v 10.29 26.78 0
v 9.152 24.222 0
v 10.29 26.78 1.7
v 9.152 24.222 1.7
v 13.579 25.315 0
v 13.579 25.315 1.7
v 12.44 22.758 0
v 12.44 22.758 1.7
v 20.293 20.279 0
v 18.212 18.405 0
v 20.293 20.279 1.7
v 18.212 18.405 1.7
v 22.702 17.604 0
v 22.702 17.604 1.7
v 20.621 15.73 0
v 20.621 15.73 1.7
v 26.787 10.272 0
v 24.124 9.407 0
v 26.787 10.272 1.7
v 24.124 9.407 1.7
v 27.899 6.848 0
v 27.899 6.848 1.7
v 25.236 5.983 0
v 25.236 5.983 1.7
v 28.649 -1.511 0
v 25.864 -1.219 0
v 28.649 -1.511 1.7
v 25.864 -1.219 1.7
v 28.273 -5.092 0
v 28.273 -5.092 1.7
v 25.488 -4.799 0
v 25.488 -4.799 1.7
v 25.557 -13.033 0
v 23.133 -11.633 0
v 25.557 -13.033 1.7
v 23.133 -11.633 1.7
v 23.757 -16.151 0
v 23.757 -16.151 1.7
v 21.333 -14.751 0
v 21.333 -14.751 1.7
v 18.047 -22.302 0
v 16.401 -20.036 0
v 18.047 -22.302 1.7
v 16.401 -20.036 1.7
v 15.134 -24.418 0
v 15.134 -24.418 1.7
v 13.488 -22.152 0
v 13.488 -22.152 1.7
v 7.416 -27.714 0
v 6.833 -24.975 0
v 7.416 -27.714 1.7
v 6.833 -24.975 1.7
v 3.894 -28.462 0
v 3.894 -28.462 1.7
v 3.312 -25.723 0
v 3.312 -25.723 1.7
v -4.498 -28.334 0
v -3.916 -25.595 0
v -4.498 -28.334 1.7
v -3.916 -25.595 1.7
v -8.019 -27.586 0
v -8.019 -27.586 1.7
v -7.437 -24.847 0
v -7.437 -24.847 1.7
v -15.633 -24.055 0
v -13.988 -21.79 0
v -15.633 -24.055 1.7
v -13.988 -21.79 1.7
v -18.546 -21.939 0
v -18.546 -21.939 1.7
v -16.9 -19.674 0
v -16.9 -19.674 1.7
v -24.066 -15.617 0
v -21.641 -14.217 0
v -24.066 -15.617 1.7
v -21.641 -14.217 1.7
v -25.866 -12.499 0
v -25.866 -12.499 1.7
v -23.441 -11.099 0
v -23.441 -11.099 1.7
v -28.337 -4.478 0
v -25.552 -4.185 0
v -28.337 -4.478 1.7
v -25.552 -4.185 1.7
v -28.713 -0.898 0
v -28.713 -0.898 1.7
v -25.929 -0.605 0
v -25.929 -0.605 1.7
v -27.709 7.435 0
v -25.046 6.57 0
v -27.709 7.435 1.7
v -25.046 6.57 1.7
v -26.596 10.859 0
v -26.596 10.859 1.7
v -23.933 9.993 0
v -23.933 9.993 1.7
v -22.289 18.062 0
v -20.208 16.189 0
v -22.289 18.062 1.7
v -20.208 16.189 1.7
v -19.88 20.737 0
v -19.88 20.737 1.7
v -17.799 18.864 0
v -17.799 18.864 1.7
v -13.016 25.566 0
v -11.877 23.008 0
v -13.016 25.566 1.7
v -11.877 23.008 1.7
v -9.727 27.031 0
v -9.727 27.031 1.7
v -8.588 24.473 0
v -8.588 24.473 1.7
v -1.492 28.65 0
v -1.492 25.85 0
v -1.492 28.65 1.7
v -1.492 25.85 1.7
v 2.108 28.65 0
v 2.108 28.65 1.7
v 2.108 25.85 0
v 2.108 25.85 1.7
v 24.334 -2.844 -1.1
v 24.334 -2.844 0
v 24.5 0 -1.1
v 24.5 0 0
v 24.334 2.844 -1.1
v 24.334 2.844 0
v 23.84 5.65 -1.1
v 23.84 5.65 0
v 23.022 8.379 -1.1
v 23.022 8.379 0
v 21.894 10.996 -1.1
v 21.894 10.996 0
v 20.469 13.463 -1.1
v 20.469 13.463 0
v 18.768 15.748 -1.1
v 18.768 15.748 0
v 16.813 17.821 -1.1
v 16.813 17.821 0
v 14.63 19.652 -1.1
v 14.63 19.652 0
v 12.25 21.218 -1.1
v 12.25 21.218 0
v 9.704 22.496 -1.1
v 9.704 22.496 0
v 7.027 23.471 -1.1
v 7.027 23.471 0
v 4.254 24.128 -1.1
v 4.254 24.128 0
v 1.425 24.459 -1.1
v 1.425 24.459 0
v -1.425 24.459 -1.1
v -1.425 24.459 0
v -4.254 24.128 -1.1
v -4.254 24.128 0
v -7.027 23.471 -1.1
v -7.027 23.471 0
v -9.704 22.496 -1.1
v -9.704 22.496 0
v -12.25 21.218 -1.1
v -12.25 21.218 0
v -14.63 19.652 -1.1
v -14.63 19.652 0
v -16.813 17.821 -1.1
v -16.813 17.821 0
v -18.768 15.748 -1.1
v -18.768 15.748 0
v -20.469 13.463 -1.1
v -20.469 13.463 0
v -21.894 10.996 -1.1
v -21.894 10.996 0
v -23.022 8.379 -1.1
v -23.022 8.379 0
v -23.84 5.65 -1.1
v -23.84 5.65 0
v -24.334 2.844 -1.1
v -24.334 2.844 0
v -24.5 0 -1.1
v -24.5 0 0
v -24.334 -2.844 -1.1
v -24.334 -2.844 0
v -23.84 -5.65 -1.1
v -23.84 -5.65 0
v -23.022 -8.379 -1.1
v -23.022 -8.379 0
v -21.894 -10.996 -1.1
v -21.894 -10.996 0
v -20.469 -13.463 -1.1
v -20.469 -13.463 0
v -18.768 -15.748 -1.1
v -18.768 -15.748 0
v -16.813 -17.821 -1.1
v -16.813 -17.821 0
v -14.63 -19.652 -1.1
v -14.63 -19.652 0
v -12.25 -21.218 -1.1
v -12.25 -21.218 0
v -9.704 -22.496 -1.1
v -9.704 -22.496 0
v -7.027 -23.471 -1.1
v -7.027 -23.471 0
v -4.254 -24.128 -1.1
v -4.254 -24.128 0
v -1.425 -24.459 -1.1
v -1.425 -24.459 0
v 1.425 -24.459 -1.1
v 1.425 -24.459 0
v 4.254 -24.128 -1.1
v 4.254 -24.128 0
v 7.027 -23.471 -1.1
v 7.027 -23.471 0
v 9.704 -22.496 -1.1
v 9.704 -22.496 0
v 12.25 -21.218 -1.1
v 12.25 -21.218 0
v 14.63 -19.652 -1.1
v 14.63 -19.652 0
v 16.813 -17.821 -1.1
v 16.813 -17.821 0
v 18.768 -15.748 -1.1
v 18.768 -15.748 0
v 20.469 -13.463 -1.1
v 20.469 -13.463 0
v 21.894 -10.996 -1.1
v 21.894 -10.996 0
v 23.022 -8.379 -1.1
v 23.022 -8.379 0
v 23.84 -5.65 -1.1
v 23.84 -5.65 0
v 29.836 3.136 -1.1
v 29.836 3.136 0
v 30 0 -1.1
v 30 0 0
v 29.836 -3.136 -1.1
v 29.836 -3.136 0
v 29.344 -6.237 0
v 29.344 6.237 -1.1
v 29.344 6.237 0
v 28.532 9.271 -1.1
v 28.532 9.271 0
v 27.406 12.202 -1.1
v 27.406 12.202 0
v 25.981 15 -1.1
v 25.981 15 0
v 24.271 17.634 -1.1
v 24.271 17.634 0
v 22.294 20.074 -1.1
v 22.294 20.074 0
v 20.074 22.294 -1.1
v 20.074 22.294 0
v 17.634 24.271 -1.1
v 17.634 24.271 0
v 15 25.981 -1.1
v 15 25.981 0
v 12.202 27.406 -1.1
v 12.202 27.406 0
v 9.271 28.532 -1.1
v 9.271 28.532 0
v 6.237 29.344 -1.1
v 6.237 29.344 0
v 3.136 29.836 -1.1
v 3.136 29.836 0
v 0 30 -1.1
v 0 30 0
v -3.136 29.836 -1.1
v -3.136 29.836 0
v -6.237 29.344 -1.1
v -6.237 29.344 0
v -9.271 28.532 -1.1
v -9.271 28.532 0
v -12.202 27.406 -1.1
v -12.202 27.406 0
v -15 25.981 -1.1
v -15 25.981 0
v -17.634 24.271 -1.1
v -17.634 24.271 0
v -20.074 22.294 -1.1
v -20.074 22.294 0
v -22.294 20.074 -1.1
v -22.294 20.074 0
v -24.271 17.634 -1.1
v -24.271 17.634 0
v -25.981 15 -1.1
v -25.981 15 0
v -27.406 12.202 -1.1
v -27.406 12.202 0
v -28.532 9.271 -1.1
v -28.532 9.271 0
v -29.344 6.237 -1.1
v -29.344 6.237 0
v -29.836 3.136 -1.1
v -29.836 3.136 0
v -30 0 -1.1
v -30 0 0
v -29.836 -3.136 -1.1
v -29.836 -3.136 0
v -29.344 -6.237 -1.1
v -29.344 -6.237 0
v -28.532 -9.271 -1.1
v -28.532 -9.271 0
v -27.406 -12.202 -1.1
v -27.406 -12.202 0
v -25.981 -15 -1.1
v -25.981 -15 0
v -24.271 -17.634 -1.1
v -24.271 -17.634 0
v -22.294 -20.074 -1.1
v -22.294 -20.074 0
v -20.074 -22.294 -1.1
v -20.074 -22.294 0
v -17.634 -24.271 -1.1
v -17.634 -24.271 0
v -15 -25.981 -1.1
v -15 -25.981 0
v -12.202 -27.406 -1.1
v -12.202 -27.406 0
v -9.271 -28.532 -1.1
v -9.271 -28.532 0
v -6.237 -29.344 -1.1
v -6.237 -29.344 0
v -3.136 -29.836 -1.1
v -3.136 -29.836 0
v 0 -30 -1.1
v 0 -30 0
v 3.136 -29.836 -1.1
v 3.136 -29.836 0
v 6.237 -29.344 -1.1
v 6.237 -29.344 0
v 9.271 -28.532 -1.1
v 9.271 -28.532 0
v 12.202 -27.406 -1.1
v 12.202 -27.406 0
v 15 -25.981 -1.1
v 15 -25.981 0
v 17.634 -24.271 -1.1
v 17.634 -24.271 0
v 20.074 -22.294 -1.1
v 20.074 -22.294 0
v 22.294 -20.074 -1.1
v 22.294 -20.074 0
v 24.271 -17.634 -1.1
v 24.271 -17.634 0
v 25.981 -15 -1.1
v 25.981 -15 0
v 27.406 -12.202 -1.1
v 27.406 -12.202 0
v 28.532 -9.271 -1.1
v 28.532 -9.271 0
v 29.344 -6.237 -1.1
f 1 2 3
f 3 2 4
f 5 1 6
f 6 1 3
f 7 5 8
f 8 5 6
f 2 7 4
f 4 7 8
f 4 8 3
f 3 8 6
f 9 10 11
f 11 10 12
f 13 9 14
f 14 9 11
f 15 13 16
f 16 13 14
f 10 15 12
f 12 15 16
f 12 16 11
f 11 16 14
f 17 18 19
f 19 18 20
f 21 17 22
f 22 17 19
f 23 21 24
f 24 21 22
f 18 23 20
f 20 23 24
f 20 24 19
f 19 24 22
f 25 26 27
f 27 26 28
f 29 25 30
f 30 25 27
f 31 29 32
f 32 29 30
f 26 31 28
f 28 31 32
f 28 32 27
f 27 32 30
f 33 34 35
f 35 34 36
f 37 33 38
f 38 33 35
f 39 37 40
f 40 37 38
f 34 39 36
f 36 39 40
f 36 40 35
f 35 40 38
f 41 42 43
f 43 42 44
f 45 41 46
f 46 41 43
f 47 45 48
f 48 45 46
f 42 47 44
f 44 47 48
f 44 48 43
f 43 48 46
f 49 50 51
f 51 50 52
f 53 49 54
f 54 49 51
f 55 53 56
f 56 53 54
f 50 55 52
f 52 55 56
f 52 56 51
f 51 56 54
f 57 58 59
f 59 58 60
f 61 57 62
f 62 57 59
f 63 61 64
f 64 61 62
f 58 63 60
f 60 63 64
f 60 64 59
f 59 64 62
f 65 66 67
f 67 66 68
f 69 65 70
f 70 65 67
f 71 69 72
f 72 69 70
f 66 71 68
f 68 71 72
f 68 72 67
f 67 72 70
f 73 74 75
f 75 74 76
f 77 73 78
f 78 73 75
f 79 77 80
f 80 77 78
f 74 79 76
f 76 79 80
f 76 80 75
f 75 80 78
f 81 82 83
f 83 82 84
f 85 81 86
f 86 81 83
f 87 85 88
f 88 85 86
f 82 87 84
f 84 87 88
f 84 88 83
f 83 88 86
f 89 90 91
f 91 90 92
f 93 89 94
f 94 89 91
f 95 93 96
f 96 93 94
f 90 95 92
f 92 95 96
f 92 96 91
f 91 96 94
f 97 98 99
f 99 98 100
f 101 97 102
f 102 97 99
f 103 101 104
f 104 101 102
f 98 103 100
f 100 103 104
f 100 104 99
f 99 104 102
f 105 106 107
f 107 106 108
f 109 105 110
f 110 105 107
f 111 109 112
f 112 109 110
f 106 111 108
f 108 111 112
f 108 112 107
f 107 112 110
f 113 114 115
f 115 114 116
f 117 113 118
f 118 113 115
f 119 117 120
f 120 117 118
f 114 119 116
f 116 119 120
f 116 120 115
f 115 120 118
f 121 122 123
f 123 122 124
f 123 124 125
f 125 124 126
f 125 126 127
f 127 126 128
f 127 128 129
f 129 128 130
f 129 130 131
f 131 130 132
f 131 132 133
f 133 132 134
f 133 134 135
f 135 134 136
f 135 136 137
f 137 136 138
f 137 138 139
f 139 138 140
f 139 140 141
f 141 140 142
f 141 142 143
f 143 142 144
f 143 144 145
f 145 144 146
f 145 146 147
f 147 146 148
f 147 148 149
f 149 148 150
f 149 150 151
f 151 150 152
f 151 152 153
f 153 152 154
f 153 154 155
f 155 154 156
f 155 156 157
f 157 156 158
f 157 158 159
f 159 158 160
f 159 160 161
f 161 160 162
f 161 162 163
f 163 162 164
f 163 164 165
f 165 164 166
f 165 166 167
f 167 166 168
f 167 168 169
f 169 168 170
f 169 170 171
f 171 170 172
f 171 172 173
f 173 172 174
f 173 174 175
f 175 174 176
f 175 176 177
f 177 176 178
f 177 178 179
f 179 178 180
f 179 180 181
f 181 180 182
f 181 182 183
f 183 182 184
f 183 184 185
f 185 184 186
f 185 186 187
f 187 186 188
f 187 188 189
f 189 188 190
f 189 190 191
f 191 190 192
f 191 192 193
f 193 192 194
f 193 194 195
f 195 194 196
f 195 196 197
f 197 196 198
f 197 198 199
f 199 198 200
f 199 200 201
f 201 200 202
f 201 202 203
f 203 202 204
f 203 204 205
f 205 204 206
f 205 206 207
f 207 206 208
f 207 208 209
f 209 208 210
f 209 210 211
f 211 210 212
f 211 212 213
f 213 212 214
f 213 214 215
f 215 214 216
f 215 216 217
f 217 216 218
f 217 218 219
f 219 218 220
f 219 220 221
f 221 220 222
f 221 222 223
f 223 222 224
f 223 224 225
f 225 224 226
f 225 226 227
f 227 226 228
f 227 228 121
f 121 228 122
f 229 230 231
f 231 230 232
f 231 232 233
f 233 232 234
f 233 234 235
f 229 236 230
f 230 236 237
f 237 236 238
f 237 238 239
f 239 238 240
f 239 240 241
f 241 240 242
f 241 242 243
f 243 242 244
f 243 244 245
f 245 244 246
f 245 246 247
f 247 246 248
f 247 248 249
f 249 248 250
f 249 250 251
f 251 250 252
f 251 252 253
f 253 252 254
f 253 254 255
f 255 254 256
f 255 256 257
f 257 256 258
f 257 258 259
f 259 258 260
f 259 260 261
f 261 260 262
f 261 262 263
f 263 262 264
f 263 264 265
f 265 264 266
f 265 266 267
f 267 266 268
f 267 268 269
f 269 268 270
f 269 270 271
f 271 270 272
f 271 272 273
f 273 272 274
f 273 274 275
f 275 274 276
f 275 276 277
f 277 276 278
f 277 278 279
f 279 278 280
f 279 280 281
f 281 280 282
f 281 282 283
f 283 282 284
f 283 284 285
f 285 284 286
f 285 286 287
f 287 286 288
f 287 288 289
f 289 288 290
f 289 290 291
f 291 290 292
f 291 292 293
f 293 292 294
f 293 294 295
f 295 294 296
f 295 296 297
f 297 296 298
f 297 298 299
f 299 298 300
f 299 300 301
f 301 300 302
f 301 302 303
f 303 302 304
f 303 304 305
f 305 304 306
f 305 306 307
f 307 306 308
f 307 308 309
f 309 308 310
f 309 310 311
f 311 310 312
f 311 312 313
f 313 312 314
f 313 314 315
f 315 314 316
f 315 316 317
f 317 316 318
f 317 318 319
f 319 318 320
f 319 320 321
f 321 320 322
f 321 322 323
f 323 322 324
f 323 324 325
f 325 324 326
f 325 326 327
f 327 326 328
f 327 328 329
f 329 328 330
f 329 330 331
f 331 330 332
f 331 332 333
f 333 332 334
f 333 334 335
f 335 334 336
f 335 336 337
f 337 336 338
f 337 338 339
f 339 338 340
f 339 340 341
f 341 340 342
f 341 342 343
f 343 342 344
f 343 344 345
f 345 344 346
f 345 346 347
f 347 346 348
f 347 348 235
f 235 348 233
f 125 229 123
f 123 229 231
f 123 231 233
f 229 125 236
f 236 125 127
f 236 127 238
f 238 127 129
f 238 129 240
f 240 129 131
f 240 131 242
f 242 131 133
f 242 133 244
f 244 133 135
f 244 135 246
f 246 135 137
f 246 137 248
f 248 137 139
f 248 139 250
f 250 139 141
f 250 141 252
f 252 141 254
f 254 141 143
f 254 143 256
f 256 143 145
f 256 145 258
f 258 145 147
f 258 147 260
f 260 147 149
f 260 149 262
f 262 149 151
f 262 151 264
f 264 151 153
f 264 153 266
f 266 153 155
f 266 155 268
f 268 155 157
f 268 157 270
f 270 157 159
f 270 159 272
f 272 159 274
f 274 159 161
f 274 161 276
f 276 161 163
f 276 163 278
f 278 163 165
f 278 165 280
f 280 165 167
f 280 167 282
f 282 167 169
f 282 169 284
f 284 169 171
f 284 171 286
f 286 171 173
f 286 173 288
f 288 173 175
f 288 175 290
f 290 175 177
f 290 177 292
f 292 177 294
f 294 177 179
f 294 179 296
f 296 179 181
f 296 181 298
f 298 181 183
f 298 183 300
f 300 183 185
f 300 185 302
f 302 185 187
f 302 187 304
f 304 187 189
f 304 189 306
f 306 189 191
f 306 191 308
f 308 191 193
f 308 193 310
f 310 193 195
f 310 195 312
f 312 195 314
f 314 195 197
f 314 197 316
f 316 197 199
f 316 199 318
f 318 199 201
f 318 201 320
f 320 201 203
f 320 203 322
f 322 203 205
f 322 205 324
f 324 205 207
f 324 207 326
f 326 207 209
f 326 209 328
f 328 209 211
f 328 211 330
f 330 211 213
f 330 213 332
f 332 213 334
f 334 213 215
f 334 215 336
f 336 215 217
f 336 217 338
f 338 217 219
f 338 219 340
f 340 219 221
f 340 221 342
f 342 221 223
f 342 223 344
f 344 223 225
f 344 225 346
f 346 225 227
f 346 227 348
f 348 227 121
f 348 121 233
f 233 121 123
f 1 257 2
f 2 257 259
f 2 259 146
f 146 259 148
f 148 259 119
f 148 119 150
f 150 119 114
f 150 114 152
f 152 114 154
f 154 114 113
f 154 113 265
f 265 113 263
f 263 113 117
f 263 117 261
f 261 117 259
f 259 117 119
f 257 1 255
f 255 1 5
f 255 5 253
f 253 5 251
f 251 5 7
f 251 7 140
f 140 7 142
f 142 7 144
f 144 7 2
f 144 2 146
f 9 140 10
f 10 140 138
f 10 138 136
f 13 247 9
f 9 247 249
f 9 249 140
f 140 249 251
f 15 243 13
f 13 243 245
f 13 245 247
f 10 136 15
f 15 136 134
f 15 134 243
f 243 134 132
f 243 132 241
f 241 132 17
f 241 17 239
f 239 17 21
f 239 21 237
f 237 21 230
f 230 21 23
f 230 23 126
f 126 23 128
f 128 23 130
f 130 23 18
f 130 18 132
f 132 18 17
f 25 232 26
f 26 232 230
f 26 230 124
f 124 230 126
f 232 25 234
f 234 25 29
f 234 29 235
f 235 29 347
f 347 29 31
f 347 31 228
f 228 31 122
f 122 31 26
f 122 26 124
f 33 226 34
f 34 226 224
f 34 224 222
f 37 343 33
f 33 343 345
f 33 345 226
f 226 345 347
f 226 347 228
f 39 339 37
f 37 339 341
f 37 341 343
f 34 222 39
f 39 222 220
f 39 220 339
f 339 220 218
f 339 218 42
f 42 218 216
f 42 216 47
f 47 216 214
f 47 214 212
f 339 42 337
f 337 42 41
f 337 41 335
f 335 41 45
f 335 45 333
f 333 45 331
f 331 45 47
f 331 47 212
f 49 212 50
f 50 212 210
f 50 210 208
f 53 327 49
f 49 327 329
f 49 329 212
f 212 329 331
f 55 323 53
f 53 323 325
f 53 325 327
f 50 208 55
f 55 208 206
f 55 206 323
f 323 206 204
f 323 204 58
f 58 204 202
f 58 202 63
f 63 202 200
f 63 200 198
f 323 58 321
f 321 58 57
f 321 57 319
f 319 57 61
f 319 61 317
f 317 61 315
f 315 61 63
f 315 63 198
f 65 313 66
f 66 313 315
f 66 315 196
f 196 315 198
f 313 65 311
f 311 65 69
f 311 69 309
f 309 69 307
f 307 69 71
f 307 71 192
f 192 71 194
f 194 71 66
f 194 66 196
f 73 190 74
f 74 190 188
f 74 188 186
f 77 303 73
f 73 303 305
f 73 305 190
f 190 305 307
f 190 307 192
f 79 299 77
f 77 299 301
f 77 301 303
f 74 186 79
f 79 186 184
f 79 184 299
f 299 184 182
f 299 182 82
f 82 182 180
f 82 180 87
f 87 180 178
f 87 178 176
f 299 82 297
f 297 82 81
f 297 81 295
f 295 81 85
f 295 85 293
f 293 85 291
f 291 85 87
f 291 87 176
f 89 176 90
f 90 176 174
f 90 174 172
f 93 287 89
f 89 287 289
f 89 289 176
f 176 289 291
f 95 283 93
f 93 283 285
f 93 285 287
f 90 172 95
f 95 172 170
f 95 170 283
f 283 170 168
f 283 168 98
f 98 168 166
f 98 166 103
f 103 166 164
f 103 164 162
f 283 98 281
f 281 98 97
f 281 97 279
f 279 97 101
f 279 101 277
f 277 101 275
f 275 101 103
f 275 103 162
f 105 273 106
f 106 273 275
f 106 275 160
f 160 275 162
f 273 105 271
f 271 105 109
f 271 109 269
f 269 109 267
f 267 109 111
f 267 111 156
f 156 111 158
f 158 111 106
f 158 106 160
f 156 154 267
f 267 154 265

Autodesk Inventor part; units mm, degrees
ref_plane "YZ Plane" through (0, 0, 0) normal (1, 0, 0) x (0, 1, 0)
ref_plane "XZ Plane" through (0, 0, 0) normal (0, 1, 0) x (-1, 0, 0)
ref_plane "XY Plane" through (0, 0, 0) normal (0, 0, 1) x (1, 0, 0)
sketch "Sketch1" plane through (0, 0, 0) normal (0, 0, 1) x (1, 0, 0)
  circle A0 centre (0, 0) radius 24.5
  circle A1 centre (0, 0) radius 30
  dimension "d0" = 49
  dimension "d1" = 60
extrude "Extrusion1" add sketch "Sketch1" against normal blind 1.1
sketch "Sketch2" plane through (0, 0, 0) normal (0, 0, 1) x (1, 0, 0)
  line L0 (0, 0) -> (0, 30) construction
  circle A0 centre (0, 0) radius 30 construction
  line L1 (-1.73, 27.25) -> (2.3469, 27.25) construction
  line L2 (2.3469, 27.25) -> (2.3469, 25.3632) construction
  line L3 (2.3469, 25.3632) -> (-1.73, 25.3632) construction
  line L4 (-1.73, 25.3632) -> (-1.73, 27.25) construction
  line L5 (-1.4916, 25.85) -> (2.1084, 25.85)
  line L6 (2.1084, 25.85) -> (2.1084, 28.65)
  line L7 (2.1084, 28.65) -> (-1.4916, 28.65)
  line L8 (-1.4916, 28.65) -> (-1.4916, 25.85)
  line L9 (-1.4916, 25.85) -> (2.1084, 28.65) construction
  line L10 (2.1084, 25.85) -> (-1.4916, 28.65) construction
  point P0 (0.3084, 27.25)
  dimension "d4" = 27.25
  dimension "d5" = 2.8
  dimension "d6" = 3.6
extrude "Extrusion2" add sketch "Sketch2" along normal blind 1.7
pattern_circular "Circular Pattern1" count 15 over 360 about axis through (0, 0, -10) along (0, 0, 1) of "Extrusion2"
properties part number "Light Ring"
